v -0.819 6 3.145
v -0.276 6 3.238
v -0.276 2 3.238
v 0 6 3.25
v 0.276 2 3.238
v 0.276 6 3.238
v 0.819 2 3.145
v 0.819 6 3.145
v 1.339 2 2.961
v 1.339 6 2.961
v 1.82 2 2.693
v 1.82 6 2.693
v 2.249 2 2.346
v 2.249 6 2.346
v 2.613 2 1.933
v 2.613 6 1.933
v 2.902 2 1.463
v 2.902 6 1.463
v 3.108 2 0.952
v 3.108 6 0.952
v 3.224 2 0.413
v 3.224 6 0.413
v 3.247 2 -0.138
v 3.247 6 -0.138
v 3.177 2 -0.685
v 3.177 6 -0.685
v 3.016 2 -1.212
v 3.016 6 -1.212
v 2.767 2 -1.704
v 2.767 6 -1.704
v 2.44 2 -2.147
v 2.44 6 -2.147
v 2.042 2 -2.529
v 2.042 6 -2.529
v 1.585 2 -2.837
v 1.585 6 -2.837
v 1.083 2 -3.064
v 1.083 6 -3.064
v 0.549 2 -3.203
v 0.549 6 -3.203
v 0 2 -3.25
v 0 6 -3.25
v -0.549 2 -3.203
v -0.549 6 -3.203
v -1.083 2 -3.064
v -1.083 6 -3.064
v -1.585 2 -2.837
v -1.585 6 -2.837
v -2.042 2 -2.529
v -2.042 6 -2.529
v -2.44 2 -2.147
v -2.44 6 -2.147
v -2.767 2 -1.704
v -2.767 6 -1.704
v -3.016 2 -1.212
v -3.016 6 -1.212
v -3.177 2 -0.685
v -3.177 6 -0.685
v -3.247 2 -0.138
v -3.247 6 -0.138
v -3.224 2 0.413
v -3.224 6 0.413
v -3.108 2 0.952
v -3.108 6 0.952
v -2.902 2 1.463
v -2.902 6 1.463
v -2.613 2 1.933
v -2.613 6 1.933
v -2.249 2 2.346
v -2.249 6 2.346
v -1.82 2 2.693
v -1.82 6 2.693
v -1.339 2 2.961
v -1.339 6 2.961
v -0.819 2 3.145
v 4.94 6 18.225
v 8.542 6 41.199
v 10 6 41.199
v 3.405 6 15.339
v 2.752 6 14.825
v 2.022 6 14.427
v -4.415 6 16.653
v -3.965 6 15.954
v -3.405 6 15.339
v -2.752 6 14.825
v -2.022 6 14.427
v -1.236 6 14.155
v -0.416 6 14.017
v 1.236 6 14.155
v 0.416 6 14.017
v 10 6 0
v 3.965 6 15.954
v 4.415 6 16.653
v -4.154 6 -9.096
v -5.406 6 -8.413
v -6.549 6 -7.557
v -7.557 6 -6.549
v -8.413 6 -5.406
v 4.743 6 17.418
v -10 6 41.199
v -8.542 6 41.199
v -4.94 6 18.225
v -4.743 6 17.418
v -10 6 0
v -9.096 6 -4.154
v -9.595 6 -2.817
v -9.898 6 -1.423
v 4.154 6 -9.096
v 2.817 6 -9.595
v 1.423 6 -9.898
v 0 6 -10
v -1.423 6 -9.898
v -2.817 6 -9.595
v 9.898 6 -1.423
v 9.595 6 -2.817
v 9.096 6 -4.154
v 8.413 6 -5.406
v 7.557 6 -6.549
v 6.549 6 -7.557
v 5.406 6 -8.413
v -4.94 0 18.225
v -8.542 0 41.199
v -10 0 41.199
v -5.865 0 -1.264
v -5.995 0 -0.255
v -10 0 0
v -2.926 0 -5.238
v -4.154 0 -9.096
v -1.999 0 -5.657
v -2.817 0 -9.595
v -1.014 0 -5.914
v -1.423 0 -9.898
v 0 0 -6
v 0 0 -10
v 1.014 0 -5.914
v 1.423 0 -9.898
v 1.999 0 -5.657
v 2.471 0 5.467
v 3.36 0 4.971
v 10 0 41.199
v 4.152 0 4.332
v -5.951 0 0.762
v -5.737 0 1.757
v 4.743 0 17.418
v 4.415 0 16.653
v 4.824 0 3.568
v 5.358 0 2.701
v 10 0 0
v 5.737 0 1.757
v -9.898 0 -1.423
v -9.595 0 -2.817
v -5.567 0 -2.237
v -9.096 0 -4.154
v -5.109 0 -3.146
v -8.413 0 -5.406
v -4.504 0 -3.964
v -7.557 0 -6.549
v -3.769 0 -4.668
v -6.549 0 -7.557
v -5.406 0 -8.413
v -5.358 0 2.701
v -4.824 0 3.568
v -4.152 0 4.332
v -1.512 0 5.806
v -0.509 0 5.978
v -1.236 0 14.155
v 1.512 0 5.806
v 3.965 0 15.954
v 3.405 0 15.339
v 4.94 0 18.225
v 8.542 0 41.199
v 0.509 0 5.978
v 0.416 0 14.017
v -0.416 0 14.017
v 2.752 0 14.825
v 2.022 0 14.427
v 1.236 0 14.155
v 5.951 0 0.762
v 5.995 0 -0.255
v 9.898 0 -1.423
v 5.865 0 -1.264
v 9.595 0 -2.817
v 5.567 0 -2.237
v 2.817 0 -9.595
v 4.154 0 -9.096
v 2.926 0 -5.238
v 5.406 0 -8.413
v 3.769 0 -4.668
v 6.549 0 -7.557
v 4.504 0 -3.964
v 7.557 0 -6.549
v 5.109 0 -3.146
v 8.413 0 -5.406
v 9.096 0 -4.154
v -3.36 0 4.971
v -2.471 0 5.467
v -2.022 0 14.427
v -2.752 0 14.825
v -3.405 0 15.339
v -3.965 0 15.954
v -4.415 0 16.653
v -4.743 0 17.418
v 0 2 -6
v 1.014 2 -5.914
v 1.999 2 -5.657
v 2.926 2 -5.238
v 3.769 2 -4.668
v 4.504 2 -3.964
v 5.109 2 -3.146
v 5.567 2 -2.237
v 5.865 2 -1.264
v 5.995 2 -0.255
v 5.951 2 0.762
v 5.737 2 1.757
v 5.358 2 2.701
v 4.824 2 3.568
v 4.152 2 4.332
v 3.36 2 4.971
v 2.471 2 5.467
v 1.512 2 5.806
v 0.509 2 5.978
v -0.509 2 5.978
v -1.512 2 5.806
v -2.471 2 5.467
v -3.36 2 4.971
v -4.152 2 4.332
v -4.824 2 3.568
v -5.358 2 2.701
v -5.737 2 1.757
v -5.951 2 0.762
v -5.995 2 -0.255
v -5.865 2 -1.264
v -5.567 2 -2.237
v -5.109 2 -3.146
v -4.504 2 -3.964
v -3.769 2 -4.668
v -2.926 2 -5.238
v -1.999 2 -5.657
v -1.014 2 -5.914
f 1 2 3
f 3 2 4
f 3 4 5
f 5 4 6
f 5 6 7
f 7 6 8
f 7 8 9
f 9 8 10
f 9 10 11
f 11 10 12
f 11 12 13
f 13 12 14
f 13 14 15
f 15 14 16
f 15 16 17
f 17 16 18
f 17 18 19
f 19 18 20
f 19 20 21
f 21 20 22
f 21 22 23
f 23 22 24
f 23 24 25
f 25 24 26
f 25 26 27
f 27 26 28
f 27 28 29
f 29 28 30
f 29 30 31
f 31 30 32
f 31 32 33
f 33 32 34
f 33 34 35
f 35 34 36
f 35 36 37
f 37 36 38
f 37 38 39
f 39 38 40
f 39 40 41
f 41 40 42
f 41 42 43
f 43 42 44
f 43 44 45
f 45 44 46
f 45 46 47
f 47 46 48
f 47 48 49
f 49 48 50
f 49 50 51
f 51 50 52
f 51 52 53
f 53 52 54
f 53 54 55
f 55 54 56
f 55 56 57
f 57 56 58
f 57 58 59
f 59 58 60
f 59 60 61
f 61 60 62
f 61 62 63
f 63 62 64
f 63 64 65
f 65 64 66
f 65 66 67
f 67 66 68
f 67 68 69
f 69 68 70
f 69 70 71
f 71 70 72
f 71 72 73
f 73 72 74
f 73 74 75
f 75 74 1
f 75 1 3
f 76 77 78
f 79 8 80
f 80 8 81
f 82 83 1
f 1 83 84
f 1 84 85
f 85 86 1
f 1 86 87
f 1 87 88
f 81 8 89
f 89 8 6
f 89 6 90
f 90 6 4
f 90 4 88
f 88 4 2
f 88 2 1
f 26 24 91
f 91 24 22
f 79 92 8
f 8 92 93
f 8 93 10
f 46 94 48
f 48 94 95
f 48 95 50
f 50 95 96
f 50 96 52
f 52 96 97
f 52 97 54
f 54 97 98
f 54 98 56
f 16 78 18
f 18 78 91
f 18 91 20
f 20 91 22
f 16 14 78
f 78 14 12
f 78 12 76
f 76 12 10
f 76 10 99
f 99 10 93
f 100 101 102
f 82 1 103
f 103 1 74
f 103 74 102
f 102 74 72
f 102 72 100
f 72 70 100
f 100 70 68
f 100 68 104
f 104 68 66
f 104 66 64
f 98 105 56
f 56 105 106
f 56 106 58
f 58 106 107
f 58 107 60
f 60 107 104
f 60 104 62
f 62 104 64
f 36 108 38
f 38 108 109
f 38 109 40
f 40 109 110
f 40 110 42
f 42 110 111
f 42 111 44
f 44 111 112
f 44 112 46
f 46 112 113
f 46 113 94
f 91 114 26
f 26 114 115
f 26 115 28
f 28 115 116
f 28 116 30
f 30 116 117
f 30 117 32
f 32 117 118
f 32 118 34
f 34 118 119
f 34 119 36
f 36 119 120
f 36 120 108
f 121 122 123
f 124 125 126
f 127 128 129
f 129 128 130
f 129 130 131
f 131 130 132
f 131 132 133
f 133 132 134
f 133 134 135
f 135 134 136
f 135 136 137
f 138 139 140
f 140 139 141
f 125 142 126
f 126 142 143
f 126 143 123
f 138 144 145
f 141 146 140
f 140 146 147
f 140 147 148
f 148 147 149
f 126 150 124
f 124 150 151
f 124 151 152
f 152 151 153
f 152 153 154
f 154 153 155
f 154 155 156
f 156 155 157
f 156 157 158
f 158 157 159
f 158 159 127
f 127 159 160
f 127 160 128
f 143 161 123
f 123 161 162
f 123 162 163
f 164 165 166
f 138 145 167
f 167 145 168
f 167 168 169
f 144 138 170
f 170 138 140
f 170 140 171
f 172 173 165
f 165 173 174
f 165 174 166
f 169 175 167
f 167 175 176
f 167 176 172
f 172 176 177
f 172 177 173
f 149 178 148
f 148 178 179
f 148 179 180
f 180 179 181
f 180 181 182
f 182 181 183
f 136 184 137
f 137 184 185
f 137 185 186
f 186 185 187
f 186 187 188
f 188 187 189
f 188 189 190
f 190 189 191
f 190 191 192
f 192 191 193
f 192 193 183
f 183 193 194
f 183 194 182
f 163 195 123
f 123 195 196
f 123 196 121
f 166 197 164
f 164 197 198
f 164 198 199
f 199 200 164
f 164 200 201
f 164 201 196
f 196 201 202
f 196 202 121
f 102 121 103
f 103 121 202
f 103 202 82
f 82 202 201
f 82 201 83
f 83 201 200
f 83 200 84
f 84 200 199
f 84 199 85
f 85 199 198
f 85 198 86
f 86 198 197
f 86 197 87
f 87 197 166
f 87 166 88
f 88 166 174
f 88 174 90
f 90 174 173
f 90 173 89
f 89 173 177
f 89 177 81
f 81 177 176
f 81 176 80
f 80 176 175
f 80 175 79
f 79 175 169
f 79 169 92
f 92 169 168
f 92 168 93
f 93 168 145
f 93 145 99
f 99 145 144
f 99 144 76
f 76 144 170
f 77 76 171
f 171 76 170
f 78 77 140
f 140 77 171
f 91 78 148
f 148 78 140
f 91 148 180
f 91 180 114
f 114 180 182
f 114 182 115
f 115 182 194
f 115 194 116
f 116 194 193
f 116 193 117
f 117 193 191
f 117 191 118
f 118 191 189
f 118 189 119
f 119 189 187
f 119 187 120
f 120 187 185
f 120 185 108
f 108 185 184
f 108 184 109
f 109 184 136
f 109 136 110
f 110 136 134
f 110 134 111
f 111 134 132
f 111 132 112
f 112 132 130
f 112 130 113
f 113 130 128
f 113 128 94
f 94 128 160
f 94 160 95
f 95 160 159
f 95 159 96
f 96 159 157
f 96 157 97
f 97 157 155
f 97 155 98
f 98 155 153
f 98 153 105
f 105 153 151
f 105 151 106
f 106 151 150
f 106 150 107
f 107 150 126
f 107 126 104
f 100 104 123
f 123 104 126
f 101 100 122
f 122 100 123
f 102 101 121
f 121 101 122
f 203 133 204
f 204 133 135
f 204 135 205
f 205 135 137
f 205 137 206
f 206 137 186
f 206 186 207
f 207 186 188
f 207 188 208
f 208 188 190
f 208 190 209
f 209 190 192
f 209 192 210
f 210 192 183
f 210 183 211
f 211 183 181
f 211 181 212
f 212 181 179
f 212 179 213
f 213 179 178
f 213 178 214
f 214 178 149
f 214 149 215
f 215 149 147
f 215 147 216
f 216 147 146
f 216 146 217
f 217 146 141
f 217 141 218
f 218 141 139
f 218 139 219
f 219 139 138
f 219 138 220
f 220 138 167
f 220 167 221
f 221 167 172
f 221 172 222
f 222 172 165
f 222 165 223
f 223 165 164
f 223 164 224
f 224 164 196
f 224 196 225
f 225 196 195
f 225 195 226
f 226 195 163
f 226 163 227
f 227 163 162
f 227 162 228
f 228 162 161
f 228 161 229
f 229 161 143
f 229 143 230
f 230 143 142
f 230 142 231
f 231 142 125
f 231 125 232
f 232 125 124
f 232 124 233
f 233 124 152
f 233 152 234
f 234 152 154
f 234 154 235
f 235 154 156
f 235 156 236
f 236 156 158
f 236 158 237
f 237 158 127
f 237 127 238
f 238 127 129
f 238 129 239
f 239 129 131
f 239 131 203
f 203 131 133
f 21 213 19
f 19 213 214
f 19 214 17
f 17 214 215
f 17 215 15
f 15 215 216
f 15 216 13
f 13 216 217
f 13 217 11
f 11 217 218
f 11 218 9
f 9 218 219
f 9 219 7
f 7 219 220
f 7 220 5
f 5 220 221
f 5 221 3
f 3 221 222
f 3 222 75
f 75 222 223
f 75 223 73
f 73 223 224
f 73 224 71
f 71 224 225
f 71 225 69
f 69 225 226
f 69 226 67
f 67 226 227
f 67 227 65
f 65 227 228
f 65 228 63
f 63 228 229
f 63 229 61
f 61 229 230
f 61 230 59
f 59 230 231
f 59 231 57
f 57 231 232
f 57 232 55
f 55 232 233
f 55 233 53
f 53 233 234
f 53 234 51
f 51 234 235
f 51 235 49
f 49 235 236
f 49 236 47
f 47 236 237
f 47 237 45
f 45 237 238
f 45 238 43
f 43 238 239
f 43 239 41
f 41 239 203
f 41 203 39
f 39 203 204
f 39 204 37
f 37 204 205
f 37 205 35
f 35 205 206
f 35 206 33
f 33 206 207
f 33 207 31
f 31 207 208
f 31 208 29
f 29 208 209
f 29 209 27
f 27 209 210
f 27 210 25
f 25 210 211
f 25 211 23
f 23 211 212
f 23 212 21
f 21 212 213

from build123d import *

# Parameters (mm, degrees)
SKETCH_1_R          = 3.25
EXTRUDE_1_DEPTH     = 6
SKETCH_2_R          = 6
CUT_EXTRUDE_1_DEPTH = 2


with BuildPart() as part:
    # Эскиз1 → Бобышка-Вытянуть1 (new body)
    with BuildSketch(Plane(origin=(0, 0, 0), x_dir=(1, 0, 0), z_dir=(0, 1, 0))):
        with BuildLine():
            Line((-4.939643838, -18.225455779), (-8.542011418, -41.199499519))
            Line((-8.542011418, -41.199499519), (-10, -41.199499519))
            Line((-10, -41.199499519), (-10, 0))
            ThreePointArc((-10, 0), (0, 10), (10, 0))
            Line((10, 0), (10, -41.199499519))
            Line((10, -41.199499519), (8.542011418, -41.199499519))
            Line((8.542011418, -41.199499519), (4.939643838, -18.225455779))
            ThreePointArc((4.939643838, -18.225455779), (0, -14), (-4.939643838, -18.225455779))
        make_face()
        Circle(SKETCH_1_R, mode=Mode.SUBTRACT)
    extrude(amount=EXTRUDE_1_DEPTH)

    # Эскиз2 → Вырез-Вытянуть1 (cut)
    with BuildSketch(Plane.XZ):
        Circle(SKETCH_2_R)
    extrude(amount=-CUT_EXTRUDE_1_DEPTH, mode=Mode.SUBTRACT)


solid = part.part
